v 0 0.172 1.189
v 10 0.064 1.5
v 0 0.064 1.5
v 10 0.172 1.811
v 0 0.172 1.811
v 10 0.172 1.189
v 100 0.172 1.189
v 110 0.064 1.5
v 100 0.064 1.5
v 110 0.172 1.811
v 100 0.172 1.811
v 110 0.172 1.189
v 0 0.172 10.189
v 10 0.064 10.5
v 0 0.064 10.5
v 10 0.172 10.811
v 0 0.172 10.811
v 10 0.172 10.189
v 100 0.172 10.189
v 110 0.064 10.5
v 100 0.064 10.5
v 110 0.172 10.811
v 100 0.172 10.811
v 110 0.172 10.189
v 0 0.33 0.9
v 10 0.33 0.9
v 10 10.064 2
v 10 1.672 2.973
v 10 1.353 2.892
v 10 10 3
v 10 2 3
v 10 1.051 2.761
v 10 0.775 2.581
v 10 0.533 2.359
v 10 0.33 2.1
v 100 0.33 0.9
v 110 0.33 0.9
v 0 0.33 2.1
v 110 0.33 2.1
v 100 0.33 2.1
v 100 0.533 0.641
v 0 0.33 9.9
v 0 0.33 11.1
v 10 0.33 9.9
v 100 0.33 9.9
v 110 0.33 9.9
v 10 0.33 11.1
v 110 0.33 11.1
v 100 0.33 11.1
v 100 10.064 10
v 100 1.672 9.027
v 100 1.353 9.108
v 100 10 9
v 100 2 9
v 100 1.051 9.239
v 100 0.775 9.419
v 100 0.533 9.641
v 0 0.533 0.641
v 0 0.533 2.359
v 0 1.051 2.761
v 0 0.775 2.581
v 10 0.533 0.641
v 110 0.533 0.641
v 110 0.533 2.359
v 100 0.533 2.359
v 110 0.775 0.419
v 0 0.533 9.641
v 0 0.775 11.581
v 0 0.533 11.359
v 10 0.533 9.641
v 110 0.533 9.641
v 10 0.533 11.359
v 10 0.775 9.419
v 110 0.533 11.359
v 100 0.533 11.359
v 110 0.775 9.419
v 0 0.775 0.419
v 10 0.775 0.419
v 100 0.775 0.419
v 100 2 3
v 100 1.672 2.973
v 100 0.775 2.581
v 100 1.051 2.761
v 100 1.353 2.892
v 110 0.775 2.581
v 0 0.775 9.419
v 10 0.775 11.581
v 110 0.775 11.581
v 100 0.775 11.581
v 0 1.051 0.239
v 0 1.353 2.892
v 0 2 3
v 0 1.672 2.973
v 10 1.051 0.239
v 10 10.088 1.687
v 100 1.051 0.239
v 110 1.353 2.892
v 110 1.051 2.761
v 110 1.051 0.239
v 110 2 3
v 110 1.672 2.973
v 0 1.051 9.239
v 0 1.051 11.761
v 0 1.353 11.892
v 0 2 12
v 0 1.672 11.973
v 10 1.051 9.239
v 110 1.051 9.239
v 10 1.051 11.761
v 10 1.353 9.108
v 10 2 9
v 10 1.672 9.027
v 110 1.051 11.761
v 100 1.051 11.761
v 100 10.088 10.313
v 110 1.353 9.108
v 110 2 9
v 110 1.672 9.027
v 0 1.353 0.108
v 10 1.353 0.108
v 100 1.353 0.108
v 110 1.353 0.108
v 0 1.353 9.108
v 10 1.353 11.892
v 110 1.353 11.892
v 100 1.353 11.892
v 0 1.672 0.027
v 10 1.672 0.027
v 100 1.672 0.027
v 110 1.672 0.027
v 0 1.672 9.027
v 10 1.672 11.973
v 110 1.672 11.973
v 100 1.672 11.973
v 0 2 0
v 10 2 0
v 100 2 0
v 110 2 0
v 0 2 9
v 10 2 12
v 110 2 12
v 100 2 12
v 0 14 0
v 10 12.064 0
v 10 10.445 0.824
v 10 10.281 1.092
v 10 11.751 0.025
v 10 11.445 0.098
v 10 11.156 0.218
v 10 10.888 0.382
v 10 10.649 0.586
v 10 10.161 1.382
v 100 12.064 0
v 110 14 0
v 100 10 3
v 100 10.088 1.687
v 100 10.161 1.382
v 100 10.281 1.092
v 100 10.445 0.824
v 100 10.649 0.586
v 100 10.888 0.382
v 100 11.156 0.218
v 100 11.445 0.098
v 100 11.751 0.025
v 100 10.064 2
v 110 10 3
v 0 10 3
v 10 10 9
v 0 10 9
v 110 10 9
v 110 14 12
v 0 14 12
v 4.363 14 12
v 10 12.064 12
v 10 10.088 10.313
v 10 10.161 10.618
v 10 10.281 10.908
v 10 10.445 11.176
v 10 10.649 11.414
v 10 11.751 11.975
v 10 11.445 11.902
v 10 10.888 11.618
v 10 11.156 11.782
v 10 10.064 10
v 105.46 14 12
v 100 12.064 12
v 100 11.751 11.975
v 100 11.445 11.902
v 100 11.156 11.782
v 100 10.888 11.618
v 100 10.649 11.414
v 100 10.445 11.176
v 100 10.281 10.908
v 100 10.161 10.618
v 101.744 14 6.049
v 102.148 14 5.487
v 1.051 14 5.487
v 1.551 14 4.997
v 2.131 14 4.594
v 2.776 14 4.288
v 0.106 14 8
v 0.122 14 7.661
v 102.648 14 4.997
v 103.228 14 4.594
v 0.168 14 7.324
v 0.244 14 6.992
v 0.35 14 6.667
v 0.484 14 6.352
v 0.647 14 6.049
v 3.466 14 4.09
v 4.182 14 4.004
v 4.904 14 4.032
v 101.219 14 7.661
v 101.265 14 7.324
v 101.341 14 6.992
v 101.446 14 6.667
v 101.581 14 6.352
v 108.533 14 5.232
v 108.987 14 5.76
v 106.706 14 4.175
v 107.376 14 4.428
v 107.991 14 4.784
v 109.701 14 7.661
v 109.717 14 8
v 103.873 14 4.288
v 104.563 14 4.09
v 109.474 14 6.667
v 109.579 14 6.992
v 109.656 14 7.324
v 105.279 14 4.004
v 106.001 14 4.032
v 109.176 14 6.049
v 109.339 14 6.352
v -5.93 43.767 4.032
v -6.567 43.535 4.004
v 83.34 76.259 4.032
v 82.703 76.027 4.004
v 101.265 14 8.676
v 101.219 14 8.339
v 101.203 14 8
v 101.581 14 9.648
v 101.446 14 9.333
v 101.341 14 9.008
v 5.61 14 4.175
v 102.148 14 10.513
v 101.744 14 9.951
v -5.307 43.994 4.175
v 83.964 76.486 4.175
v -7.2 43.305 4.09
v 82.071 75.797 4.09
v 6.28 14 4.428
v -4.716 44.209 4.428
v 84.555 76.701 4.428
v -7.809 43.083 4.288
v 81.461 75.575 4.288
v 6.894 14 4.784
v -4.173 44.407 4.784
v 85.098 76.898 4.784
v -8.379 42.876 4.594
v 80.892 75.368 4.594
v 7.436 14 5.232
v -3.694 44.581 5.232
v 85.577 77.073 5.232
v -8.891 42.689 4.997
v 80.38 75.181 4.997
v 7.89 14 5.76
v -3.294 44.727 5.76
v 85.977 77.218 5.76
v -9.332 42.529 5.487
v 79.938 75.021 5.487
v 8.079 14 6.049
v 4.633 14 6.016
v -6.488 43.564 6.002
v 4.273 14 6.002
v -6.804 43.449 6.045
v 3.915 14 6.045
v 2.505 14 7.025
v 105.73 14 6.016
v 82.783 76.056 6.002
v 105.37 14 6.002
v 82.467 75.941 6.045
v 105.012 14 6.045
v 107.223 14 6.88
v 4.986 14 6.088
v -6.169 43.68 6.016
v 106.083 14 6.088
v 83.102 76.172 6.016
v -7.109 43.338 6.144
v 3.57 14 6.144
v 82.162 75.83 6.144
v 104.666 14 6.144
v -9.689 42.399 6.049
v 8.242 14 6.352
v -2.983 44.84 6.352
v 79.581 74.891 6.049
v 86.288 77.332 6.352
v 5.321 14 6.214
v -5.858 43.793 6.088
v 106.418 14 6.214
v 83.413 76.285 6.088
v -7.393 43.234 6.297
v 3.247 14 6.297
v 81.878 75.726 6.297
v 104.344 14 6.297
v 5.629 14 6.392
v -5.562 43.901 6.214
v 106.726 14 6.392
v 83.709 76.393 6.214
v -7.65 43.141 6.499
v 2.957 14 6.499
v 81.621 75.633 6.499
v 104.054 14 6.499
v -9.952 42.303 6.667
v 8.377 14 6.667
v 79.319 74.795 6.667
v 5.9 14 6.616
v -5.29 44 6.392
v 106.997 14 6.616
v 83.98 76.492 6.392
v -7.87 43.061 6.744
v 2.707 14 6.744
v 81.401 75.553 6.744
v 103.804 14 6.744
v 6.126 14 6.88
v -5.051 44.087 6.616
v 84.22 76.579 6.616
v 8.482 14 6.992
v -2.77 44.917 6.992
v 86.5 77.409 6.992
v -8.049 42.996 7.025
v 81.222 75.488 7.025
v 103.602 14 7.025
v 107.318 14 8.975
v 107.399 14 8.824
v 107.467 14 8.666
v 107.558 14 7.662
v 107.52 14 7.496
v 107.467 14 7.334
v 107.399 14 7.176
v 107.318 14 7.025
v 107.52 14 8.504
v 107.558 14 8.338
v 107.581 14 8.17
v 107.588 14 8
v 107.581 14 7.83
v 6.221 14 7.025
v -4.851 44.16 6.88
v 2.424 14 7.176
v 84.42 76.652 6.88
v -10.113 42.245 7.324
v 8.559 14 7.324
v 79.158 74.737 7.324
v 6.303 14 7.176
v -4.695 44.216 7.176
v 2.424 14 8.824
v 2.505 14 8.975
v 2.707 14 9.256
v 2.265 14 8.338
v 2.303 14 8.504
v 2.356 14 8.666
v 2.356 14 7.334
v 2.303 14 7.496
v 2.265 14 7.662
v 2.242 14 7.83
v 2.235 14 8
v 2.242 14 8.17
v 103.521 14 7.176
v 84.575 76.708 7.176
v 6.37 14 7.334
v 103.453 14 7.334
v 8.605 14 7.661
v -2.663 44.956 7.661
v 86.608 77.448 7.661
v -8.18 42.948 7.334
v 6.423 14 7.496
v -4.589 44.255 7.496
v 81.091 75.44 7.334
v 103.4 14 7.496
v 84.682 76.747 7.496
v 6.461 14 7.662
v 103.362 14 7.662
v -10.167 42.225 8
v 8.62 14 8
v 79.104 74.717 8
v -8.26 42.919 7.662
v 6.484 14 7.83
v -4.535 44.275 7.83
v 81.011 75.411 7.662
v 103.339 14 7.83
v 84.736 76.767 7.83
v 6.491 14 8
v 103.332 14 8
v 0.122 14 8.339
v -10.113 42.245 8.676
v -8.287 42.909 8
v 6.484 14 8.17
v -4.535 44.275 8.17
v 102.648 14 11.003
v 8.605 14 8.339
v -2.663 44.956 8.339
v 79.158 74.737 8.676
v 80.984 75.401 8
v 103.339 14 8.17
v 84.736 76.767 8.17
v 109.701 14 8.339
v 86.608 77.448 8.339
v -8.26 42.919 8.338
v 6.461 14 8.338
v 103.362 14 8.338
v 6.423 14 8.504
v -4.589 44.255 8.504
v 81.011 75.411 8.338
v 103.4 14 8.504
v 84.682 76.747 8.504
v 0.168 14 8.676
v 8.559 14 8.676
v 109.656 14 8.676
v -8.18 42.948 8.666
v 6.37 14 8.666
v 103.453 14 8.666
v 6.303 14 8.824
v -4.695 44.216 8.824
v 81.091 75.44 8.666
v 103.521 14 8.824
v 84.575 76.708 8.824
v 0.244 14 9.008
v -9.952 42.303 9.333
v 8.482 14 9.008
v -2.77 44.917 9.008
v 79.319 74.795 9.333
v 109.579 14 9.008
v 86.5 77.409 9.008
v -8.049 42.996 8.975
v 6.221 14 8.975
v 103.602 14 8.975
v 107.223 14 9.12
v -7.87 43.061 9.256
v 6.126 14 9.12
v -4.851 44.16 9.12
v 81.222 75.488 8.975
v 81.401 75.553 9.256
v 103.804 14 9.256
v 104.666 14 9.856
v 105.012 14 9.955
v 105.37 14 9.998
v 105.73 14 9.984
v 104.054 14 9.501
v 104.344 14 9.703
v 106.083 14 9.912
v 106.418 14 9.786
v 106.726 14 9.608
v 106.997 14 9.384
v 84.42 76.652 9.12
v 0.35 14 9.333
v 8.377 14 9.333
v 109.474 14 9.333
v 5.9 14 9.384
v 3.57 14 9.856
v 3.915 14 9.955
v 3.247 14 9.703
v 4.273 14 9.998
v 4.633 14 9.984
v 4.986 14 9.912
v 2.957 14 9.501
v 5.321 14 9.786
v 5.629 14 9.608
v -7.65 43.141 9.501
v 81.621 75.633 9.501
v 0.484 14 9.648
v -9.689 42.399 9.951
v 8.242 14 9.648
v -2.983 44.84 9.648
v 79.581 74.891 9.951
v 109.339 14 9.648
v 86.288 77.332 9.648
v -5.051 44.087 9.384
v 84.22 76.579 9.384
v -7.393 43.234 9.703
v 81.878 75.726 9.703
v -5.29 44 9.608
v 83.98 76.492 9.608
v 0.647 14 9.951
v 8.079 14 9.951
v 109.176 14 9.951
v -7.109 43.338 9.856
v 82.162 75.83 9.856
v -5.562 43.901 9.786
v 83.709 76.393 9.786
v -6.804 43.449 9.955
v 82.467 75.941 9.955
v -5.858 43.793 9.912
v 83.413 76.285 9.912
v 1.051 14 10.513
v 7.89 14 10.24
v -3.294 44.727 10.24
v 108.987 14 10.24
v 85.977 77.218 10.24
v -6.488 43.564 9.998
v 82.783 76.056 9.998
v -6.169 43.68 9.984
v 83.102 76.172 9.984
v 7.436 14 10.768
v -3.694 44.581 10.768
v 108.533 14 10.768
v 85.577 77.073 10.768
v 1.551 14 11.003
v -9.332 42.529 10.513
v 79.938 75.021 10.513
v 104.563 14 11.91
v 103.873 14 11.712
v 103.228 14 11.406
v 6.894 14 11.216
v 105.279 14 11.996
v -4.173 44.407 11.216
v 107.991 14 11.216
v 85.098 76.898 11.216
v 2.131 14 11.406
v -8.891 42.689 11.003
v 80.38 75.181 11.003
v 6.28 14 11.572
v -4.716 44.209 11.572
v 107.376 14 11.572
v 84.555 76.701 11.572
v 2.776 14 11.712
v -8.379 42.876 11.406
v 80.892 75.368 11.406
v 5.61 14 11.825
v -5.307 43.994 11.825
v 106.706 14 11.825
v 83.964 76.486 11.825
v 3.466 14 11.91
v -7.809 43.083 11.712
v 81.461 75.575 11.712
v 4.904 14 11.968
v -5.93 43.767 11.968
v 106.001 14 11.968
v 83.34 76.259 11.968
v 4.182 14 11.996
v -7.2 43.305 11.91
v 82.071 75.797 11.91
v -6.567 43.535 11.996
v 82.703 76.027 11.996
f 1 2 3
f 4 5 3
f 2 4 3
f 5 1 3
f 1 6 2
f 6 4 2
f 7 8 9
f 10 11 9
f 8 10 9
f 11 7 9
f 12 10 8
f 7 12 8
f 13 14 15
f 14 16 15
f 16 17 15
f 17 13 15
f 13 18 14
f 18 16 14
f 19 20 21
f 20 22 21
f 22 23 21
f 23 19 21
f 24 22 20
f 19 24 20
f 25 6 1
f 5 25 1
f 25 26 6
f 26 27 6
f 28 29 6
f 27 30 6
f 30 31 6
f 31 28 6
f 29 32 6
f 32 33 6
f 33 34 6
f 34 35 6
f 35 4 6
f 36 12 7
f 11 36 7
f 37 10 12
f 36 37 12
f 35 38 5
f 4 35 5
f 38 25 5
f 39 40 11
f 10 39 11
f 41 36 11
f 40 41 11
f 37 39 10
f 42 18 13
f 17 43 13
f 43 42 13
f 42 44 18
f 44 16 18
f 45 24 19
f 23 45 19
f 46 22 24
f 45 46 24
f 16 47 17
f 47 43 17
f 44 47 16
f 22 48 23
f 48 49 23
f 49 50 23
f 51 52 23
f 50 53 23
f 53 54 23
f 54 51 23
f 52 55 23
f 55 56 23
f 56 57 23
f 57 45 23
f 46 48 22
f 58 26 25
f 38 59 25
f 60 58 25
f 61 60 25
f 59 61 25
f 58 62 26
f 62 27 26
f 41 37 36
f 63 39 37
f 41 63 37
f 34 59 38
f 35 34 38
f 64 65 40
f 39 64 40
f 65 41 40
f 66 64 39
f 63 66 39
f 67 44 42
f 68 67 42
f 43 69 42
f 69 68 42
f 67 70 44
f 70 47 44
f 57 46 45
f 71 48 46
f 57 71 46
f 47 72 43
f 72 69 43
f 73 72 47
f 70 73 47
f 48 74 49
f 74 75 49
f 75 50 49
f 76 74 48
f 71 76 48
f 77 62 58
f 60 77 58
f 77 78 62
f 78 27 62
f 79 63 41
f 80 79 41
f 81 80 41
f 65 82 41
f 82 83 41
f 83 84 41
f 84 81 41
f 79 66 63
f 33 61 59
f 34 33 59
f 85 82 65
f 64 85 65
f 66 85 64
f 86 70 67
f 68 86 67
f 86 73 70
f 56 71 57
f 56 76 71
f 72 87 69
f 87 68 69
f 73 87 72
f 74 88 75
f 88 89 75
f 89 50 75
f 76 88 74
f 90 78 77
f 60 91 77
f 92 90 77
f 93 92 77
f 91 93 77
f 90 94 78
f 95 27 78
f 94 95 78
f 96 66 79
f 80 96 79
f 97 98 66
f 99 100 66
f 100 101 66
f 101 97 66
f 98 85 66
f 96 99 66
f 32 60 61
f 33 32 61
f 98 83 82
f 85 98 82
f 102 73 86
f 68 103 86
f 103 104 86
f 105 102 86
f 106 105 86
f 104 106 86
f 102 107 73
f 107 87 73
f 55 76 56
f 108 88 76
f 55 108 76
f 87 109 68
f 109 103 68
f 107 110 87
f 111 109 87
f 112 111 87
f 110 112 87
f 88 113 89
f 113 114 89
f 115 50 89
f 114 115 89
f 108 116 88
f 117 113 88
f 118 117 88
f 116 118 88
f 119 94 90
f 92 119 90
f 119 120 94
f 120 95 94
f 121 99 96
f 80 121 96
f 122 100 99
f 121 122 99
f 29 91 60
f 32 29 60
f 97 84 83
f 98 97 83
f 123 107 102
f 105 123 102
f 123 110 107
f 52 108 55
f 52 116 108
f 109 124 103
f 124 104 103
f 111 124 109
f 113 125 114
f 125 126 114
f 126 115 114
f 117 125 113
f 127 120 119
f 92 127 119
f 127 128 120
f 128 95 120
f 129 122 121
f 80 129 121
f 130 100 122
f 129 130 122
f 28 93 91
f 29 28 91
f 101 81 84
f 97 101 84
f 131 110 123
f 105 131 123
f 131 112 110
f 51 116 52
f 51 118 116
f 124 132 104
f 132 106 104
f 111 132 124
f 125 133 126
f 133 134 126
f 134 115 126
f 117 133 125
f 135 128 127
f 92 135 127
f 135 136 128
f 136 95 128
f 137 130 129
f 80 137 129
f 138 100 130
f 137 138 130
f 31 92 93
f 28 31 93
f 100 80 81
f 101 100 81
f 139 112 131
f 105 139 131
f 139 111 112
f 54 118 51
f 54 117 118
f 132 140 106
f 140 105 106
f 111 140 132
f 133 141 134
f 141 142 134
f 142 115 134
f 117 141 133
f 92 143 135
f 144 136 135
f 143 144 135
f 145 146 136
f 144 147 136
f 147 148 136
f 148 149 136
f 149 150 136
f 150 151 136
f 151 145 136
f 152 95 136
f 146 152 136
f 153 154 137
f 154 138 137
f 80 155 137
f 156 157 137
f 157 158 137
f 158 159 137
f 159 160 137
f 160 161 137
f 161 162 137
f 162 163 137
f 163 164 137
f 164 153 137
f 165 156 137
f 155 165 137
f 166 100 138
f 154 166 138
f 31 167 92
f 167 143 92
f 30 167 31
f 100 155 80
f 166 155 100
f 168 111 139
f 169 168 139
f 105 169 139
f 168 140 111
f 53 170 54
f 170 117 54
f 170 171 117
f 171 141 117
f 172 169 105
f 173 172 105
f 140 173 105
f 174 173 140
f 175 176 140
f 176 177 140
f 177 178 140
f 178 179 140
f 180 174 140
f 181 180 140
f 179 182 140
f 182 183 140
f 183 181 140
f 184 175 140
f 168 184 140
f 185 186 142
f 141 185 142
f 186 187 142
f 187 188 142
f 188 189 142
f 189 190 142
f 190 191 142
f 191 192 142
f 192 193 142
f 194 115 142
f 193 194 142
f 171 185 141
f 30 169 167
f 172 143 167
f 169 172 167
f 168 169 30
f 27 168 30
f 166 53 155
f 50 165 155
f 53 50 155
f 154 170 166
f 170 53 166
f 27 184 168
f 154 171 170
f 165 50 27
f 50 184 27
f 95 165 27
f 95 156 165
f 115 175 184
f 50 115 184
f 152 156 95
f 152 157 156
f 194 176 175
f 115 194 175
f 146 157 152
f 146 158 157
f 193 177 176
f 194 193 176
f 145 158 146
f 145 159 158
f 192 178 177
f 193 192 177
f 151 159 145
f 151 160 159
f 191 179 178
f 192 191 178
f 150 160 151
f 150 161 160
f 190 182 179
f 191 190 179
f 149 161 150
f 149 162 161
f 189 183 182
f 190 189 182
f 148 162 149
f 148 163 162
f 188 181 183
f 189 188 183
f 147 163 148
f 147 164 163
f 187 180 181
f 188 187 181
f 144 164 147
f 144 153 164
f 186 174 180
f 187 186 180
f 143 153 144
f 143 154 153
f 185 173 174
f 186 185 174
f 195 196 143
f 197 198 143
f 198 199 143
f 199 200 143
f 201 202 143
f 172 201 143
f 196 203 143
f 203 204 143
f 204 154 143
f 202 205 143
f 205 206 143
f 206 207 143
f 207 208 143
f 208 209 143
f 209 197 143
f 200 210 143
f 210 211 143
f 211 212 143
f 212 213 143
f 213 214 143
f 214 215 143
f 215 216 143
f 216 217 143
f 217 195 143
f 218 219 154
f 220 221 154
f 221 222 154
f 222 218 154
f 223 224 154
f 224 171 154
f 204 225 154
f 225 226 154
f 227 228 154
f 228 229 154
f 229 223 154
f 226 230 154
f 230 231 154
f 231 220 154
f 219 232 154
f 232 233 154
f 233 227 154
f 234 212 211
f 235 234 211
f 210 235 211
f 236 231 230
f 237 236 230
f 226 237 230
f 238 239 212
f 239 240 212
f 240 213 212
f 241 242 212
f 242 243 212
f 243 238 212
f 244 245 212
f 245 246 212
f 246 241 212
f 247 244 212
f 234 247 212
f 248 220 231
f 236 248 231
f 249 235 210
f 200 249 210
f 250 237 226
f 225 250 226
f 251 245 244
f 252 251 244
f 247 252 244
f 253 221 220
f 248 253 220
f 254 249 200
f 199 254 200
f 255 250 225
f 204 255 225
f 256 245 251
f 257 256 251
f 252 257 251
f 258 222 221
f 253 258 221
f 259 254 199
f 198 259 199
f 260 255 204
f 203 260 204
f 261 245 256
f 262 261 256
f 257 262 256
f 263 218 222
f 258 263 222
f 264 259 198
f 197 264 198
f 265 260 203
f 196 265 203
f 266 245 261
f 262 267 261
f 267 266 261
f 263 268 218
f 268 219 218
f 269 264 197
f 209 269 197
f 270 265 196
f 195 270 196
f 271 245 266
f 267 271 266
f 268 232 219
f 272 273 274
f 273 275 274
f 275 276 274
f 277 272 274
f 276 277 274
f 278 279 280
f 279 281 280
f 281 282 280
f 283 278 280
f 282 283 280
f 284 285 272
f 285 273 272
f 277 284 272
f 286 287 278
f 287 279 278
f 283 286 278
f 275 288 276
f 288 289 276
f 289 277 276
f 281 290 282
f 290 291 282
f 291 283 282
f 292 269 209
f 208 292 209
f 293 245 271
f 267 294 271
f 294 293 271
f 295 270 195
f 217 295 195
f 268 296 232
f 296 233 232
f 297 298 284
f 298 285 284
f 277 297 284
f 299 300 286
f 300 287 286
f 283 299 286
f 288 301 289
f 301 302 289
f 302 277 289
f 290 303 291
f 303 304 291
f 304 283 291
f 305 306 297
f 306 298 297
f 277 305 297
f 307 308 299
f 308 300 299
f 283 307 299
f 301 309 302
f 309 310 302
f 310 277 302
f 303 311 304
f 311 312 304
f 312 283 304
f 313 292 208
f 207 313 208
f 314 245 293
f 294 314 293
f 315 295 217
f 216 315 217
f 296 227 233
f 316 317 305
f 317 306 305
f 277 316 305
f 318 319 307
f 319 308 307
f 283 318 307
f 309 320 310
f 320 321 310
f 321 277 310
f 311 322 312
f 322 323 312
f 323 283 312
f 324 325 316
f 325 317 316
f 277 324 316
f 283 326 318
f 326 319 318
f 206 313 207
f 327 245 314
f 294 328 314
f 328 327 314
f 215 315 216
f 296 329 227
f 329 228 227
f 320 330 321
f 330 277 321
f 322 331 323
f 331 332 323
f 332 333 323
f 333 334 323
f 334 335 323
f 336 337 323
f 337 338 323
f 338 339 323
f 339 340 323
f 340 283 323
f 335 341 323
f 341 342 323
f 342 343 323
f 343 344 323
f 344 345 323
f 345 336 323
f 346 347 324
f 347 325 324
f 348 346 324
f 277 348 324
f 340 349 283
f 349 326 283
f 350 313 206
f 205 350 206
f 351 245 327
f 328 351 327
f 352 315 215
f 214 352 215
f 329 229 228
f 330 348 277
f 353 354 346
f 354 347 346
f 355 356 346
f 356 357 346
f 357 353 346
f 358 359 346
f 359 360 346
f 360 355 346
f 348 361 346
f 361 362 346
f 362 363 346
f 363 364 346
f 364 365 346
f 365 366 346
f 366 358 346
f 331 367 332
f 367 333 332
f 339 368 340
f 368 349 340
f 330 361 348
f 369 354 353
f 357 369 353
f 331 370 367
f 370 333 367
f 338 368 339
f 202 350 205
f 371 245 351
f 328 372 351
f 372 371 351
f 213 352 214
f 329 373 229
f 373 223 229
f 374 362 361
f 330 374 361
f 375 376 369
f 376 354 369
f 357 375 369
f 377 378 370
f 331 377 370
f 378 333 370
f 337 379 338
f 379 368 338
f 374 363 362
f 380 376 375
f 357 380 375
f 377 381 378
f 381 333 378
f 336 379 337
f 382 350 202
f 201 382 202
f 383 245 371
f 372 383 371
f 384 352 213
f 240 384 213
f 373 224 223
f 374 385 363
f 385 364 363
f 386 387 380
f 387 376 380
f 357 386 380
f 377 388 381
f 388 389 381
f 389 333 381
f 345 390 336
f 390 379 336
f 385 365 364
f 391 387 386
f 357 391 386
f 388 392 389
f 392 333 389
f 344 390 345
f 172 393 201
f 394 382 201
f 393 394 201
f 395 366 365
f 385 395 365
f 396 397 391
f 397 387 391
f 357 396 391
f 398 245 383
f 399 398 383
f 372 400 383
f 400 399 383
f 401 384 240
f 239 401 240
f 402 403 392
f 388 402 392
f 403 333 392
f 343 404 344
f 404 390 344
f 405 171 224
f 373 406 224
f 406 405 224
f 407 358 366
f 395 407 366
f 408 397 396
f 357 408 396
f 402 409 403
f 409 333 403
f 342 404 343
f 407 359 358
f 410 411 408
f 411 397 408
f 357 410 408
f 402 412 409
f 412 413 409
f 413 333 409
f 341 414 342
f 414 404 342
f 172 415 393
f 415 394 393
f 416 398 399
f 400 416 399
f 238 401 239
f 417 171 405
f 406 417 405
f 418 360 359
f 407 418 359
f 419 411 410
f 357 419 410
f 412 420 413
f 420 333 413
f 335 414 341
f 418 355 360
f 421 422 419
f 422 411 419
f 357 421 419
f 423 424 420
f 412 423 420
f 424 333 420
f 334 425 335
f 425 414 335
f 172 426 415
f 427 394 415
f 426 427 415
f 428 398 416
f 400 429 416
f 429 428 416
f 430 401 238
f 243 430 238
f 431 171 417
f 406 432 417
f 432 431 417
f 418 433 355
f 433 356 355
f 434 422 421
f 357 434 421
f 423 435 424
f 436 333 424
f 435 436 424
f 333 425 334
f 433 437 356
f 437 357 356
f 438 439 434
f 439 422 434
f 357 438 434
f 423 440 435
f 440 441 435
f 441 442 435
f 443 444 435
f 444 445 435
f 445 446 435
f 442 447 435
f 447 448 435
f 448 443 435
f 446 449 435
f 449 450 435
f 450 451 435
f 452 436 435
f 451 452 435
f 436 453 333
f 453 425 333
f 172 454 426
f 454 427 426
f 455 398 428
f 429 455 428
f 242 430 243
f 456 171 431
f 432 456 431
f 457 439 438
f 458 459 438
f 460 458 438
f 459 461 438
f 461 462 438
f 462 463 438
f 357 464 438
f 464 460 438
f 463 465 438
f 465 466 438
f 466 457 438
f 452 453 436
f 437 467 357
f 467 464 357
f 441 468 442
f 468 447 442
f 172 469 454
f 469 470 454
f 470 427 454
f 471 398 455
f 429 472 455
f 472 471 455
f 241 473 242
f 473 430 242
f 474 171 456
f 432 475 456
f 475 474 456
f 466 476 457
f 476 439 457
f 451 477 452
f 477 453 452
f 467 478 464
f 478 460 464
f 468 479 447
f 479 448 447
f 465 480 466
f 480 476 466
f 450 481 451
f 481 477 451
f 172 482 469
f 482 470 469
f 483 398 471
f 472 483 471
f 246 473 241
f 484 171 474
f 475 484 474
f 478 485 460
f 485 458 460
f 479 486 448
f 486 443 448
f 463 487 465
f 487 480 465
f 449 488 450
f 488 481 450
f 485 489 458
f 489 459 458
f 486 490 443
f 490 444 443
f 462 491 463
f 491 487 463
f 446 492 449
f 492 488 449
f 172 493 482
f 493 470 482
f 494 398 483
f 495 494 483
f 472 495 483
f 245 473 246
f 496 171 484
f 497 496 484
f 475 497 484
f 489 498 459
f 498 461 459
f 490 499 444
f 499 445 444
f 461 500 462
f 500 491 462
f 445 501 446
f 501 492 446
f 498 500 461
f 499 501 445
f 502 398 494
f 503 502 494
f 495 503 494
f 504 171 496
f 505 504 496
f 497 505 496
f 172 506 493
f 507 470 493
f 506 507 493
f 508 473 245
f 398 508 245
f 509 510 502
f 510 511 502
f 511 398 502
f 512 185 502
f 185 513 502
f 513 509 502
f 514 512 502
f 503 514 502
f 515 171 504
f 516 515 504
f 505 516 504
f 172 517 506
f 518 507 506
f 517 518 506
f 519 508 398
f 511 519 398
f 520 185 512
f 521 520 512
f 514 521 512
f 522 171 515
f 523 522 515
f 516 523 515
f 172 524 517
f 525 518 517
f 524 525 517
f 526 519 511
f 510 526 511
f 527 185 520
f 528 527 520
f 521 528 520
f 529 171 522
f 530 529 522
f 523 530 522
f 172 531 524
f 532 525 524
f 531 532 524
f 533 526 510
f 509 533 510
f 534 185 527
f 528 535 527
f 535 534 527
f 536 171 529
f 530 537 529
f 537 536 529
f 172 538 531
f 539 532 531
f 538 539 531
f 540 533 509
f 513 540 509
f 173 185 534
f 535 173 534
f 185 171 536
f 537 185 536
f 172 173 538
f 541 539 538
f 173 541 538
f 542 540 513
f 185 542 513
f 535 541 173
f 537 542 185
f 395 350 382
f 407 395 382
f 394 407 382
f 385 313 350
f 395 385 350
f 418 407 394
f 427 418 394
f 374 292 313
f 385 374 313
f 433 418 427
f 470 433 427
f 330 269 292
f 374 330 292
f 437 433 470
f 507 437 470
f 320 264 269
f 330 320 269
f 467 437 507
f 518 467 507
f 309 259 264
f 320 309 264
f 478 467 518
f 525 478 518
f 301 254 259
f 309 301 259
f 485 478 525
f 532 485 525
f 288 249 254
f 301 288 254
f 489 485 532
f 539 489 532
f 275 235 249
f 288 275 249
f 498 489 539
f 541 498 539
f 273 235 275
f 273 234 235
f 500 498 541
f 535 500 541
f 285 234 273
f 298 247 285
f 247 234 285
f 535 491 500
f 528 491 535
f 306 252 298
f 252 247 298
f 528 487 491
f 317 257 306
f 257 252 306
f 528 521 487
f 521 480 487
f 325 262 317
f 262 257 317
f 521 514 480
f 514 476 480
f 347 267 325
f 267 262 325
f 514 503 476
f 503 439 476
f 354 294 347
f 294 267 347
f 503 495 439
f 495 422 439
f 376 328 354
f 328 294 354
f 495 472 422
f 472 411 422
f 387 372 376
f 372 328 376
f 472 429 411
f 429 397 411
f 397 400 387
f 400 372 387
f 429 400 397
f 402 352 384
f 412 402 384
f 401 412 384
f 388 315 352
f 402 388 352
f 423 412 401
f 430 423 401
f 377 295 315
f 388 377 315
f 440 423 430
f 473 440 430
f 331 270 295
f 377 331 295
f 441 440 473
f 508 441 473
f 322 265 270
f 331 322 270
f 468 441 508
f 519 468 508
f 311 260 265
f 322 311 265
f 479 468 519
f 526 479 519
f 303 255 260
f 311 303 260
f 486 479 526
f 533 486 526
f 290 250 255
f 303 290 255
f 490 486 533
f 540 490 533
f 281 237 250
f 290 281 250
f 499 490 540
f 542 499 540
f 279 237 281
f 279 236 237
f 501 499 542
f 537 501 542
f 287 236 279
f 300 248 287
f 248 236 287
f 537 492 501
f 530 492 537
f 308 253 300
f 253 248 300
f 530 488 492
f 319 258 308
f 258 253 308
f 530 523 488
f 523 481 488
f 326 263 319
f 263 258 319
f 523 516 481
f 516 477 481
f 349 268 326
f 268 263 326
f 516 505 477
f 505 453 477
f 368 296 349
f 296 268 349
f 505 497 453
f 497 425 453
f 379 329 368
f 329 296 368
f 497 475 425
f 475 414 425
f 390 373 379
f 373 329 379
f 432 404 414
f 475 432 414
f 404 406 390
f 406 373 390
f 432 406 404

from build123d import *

# Parameters (mm, degrees)
ESQUISSE1_W                    = 110
ESQUISSE1_H                    = 14
BOSS_EXTRU_1_DEPTH             = 12
ESQUISSE2_W                    = 6
ESQUISSE2_H                    = 10
ENL_V_MAT_EXTRU_1_DEPTH        = 112.534747949
CONG_1_R                       = 2
ESQUISSE3_W                    = 90
ESQUISSE3_H                    = 10
ENL_V_MAT_EXTRU_2_DEPTH        = 12
CONG_2_R                       = 2
ESQUISSE6_R                    = 4
ESQUISSE6_R_2                  = 2
BOSS_EXTRU_2_DEPTH             = 30
BOSS_EXTRU_2_DIRECTION_2_REACH = 117.782


with BuildPart() as part:
    # Esquisse1 → Boss.-Extru.1 (new body)
    with BuildSketch(Plane.XY):
        with Locations((55, 7)):
            Rectangle(ESQUISSE1_W, ESQUISSE1_H)
    extrude(amount=BOSS_EXTRU_1_DEPTH)

    # Esquisse2 → Enlèv. mat.-Extru.1 (cut, through all)
    with BuildSketch(Plane.ZY):
        with Locations((6, 5)):
            Rectangle(ESQUISSE2_W, ESQUISSE2_H)
    extrude(amount=-ENL_V_MAT_EXTRU_1_DEPTH, mode=Mode.SUBTRACT)

    # Congé1
    # the kernel refuses this fillet: 2 mm, written as the material it takes off along each edge
    with BuildSketch(Plane(origin=(-5, 0, 12), x_dir=(0, 1, 0), z_dir=(1, 0, 0)), Plane(origin=(-5, 0, 9), x_dir=(0, 0, 1), z_dir=(1, 0, 0)), Plane(origin=(-5, 0, 0), x_dir=(0, 0, 1), z_dir=(1, 0, 0))) as cong_1_piece_1:
        with BuildLine():
            CenterArc((CONG_1_R, -CONG_1_R), CONG_1_R, 90, 90)
            Line((0, -CONG_1_R), (0, 0))
            Line((0, 0), (CONG_1_R, 0))
        make_face()
    extrude(amount=120, mode=Mode.SUBTRACT)
    with BuildSketch(Plane(origin=(-5, 0, 3), x_dir=(0, 0, -1), z_dir=(1, 0, 0))) as cong_1_piece_2:
        with BuildLine():
            CenterArc((CONG_1_R, CONG_1_R), CONG_1_R, 180, 90)
            Line((0, CONG_1_R), (0, 0))
            Line((0, 0), (CONG_1_R, 0))
        make_face()
    extrude(amount=120, mode=Mode.SUBTRACT)

    # Esquisse3 → Enlèv. mat.-Extru.2 (cut)
    with BuildSketch(Plane.XY.offset(12)):
        with Locations((55, 5.063508327)):
            Rectangle(ESQUISSE3_W, ESQUISSE3_H)
    extrude(amount=-ENL_V_MAT_EXTRU_2_DEPTH, mode=Mode.SUBTRACT)

    # Congé2
    cong_2_edges = [part.edges().sort_by_distance(p)[0] for p in [
        (55, 10.063508327, 12),
        (55, 10.063508327, 0),
    ]]
    fillet(cong_2_edges, radius=CONG_2_R)

    # Esquisse6 → Boss.-Extru.2 (add)
    # profile 1 of 2: a face of its own
    with BuildSketch(Plane(origin=(-4.499513268, 12.362311102, 0), x_dir=(0, 0, -1), z_dir=(-0.34202014332565694, 0.9396926207859128, 0))):
        with Locations(Location((-8, -8.888282007, 0), (0, 0, 90))):
            Circle(ESQUISSE6_R)
        with Locations(Location((-8, -8.888282007, 0), (0, 0, 90))):
            Circle(ESQUISSE6_R_2, mode=Mode.SUBTRACT)
    # profile 2 of 2: a face of its own
    with BuildSketch(Plane(origin=(-4.499513268, 12.362311102, 0), x_dir=(0, 0, -1), z_dir=(-0.34202014332565694, 0.9396926207859128, 0))):
        with Locations(Location((-8, -103.888282007, 0), (0, 0, 90))):
            Circle(ESQUISSE6_R)
        with Locations(Location((-8, -103.888282007, 0), (0, 0, 90))):
            Circle(ESQUISSE6_R_2, mode=Mode.SUBTRACT)
    extrude(amount=BOSS_EXTRU_2_DEPTH)

    # Esquisse6 → Boss.-Extru.2 direction 2 (add, up to next)
    with BuildSketch(Plane(origin=(-4.499513268, 12.362311102, 0), x_dir=(0, 0, -1), z_dir=(-0.34202014332565694, 0.9396926207859128, 0)), mode=Mode.PRIVATE) as boss_extru_2_direction_2_sk1:
        with Locations(Location((-8, -8.888282007, 0), (0, 0, 90))):
            Circle(ESQUISSE6_R)
        with Locations(Location((-8, -8.888282007, 0), (0, 0, 90))):
            Circle(ESQUISSE6_R_2, mode=Mode.SUBTRACT)
    boss_extru_2_direction_2_tool1 = extrude(boss_extru_2_direction_2_sk1.sketch, amount=-BOSS_EXTRU_2_DIRECTION_2_REACH, mode=Mode.PRIVATE) - part.part
    # Esquisse6 → Boss.-Extru.2 direction 2 (add, up to next)
    with BuildSketch(Plane(origin=(-4.499513268, 12.362311102, 0), x_dir=(0, 0, -1), z_dir=(-0.34202014332565694, 0.9396926207859128, 0)), mode=Mode.PRIVATE) as boss_extru_2_direction_2_sk2:
        with Locations(Location((-8, -103.888282007, 0), (0, 0, 90))):
            Circle(ESQUISSE6_R)
        with Locations(Location((-8, -103.888282007, 0), (0, 0, 90))):
            Circle(ESQUISSE6_R_2, mode=Mode.SUBTRACT)
    boss_extru_2_direction_2_tool2 = extrude(boss_extru_2_direction_2_sk2.sketch, amount=-BOSS_EXTRU_2_DIRECTION_2_REACH, mode=Mode.PRIVATE) - part.part
    add(boss_extru_2_direction_2_tool1.solids().sort_by_distance((7.505196, 16.731668, 8))[0])
    add(boss_extru_2_direction_2_tool2.solids().sort_by_distance((96.775995, 49.223582, 8))[0])


solid = part.part
